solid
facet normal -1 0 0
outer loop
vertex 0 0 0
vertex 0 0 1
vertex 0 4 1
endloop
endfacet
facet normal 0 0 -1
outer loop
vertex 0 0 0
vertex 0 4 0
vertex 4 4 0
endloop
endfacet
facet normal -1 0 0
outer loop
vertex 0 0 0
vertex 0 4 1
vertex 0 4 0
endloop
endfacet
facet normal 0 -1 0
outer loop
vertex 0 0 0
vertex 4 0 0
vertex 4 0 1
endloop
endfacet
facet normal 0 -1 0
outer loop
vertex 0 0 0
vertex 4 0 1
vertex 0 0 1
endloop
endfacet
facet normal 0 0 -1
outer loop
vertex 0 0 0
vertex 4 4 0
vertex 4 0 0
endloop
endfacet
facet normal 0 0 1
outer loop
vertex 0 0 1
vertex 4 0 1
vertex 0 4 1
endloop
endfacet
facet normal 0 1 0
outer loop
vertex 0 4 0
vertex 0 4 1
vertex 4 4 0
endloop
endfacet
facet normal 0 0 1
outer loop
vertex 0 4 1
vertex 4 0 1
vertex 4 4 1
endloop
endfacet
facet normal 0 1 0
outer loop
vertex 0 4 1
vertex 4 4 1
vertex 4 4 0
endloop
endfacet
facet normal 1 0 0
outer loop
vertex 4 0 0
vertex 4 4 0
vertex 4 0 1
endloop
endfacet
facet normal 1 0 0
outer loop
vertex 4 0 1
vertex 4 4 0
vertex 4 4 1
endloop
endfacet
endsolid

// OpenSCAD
/* Warning, this is a very basic generator with a lot of approximation 
input data : [VQFN, 2WW, 4x4x1mm, 16, , A, C04-00556A]
generated by com.zoubworld.electronics.cad.model3d.Basic
Date : Sun Feb 15 10:50:49 CET 2026
*/

//body
color("black")
translate([0,0,0])
cube([4.0,4.0,1.0], center=false);
